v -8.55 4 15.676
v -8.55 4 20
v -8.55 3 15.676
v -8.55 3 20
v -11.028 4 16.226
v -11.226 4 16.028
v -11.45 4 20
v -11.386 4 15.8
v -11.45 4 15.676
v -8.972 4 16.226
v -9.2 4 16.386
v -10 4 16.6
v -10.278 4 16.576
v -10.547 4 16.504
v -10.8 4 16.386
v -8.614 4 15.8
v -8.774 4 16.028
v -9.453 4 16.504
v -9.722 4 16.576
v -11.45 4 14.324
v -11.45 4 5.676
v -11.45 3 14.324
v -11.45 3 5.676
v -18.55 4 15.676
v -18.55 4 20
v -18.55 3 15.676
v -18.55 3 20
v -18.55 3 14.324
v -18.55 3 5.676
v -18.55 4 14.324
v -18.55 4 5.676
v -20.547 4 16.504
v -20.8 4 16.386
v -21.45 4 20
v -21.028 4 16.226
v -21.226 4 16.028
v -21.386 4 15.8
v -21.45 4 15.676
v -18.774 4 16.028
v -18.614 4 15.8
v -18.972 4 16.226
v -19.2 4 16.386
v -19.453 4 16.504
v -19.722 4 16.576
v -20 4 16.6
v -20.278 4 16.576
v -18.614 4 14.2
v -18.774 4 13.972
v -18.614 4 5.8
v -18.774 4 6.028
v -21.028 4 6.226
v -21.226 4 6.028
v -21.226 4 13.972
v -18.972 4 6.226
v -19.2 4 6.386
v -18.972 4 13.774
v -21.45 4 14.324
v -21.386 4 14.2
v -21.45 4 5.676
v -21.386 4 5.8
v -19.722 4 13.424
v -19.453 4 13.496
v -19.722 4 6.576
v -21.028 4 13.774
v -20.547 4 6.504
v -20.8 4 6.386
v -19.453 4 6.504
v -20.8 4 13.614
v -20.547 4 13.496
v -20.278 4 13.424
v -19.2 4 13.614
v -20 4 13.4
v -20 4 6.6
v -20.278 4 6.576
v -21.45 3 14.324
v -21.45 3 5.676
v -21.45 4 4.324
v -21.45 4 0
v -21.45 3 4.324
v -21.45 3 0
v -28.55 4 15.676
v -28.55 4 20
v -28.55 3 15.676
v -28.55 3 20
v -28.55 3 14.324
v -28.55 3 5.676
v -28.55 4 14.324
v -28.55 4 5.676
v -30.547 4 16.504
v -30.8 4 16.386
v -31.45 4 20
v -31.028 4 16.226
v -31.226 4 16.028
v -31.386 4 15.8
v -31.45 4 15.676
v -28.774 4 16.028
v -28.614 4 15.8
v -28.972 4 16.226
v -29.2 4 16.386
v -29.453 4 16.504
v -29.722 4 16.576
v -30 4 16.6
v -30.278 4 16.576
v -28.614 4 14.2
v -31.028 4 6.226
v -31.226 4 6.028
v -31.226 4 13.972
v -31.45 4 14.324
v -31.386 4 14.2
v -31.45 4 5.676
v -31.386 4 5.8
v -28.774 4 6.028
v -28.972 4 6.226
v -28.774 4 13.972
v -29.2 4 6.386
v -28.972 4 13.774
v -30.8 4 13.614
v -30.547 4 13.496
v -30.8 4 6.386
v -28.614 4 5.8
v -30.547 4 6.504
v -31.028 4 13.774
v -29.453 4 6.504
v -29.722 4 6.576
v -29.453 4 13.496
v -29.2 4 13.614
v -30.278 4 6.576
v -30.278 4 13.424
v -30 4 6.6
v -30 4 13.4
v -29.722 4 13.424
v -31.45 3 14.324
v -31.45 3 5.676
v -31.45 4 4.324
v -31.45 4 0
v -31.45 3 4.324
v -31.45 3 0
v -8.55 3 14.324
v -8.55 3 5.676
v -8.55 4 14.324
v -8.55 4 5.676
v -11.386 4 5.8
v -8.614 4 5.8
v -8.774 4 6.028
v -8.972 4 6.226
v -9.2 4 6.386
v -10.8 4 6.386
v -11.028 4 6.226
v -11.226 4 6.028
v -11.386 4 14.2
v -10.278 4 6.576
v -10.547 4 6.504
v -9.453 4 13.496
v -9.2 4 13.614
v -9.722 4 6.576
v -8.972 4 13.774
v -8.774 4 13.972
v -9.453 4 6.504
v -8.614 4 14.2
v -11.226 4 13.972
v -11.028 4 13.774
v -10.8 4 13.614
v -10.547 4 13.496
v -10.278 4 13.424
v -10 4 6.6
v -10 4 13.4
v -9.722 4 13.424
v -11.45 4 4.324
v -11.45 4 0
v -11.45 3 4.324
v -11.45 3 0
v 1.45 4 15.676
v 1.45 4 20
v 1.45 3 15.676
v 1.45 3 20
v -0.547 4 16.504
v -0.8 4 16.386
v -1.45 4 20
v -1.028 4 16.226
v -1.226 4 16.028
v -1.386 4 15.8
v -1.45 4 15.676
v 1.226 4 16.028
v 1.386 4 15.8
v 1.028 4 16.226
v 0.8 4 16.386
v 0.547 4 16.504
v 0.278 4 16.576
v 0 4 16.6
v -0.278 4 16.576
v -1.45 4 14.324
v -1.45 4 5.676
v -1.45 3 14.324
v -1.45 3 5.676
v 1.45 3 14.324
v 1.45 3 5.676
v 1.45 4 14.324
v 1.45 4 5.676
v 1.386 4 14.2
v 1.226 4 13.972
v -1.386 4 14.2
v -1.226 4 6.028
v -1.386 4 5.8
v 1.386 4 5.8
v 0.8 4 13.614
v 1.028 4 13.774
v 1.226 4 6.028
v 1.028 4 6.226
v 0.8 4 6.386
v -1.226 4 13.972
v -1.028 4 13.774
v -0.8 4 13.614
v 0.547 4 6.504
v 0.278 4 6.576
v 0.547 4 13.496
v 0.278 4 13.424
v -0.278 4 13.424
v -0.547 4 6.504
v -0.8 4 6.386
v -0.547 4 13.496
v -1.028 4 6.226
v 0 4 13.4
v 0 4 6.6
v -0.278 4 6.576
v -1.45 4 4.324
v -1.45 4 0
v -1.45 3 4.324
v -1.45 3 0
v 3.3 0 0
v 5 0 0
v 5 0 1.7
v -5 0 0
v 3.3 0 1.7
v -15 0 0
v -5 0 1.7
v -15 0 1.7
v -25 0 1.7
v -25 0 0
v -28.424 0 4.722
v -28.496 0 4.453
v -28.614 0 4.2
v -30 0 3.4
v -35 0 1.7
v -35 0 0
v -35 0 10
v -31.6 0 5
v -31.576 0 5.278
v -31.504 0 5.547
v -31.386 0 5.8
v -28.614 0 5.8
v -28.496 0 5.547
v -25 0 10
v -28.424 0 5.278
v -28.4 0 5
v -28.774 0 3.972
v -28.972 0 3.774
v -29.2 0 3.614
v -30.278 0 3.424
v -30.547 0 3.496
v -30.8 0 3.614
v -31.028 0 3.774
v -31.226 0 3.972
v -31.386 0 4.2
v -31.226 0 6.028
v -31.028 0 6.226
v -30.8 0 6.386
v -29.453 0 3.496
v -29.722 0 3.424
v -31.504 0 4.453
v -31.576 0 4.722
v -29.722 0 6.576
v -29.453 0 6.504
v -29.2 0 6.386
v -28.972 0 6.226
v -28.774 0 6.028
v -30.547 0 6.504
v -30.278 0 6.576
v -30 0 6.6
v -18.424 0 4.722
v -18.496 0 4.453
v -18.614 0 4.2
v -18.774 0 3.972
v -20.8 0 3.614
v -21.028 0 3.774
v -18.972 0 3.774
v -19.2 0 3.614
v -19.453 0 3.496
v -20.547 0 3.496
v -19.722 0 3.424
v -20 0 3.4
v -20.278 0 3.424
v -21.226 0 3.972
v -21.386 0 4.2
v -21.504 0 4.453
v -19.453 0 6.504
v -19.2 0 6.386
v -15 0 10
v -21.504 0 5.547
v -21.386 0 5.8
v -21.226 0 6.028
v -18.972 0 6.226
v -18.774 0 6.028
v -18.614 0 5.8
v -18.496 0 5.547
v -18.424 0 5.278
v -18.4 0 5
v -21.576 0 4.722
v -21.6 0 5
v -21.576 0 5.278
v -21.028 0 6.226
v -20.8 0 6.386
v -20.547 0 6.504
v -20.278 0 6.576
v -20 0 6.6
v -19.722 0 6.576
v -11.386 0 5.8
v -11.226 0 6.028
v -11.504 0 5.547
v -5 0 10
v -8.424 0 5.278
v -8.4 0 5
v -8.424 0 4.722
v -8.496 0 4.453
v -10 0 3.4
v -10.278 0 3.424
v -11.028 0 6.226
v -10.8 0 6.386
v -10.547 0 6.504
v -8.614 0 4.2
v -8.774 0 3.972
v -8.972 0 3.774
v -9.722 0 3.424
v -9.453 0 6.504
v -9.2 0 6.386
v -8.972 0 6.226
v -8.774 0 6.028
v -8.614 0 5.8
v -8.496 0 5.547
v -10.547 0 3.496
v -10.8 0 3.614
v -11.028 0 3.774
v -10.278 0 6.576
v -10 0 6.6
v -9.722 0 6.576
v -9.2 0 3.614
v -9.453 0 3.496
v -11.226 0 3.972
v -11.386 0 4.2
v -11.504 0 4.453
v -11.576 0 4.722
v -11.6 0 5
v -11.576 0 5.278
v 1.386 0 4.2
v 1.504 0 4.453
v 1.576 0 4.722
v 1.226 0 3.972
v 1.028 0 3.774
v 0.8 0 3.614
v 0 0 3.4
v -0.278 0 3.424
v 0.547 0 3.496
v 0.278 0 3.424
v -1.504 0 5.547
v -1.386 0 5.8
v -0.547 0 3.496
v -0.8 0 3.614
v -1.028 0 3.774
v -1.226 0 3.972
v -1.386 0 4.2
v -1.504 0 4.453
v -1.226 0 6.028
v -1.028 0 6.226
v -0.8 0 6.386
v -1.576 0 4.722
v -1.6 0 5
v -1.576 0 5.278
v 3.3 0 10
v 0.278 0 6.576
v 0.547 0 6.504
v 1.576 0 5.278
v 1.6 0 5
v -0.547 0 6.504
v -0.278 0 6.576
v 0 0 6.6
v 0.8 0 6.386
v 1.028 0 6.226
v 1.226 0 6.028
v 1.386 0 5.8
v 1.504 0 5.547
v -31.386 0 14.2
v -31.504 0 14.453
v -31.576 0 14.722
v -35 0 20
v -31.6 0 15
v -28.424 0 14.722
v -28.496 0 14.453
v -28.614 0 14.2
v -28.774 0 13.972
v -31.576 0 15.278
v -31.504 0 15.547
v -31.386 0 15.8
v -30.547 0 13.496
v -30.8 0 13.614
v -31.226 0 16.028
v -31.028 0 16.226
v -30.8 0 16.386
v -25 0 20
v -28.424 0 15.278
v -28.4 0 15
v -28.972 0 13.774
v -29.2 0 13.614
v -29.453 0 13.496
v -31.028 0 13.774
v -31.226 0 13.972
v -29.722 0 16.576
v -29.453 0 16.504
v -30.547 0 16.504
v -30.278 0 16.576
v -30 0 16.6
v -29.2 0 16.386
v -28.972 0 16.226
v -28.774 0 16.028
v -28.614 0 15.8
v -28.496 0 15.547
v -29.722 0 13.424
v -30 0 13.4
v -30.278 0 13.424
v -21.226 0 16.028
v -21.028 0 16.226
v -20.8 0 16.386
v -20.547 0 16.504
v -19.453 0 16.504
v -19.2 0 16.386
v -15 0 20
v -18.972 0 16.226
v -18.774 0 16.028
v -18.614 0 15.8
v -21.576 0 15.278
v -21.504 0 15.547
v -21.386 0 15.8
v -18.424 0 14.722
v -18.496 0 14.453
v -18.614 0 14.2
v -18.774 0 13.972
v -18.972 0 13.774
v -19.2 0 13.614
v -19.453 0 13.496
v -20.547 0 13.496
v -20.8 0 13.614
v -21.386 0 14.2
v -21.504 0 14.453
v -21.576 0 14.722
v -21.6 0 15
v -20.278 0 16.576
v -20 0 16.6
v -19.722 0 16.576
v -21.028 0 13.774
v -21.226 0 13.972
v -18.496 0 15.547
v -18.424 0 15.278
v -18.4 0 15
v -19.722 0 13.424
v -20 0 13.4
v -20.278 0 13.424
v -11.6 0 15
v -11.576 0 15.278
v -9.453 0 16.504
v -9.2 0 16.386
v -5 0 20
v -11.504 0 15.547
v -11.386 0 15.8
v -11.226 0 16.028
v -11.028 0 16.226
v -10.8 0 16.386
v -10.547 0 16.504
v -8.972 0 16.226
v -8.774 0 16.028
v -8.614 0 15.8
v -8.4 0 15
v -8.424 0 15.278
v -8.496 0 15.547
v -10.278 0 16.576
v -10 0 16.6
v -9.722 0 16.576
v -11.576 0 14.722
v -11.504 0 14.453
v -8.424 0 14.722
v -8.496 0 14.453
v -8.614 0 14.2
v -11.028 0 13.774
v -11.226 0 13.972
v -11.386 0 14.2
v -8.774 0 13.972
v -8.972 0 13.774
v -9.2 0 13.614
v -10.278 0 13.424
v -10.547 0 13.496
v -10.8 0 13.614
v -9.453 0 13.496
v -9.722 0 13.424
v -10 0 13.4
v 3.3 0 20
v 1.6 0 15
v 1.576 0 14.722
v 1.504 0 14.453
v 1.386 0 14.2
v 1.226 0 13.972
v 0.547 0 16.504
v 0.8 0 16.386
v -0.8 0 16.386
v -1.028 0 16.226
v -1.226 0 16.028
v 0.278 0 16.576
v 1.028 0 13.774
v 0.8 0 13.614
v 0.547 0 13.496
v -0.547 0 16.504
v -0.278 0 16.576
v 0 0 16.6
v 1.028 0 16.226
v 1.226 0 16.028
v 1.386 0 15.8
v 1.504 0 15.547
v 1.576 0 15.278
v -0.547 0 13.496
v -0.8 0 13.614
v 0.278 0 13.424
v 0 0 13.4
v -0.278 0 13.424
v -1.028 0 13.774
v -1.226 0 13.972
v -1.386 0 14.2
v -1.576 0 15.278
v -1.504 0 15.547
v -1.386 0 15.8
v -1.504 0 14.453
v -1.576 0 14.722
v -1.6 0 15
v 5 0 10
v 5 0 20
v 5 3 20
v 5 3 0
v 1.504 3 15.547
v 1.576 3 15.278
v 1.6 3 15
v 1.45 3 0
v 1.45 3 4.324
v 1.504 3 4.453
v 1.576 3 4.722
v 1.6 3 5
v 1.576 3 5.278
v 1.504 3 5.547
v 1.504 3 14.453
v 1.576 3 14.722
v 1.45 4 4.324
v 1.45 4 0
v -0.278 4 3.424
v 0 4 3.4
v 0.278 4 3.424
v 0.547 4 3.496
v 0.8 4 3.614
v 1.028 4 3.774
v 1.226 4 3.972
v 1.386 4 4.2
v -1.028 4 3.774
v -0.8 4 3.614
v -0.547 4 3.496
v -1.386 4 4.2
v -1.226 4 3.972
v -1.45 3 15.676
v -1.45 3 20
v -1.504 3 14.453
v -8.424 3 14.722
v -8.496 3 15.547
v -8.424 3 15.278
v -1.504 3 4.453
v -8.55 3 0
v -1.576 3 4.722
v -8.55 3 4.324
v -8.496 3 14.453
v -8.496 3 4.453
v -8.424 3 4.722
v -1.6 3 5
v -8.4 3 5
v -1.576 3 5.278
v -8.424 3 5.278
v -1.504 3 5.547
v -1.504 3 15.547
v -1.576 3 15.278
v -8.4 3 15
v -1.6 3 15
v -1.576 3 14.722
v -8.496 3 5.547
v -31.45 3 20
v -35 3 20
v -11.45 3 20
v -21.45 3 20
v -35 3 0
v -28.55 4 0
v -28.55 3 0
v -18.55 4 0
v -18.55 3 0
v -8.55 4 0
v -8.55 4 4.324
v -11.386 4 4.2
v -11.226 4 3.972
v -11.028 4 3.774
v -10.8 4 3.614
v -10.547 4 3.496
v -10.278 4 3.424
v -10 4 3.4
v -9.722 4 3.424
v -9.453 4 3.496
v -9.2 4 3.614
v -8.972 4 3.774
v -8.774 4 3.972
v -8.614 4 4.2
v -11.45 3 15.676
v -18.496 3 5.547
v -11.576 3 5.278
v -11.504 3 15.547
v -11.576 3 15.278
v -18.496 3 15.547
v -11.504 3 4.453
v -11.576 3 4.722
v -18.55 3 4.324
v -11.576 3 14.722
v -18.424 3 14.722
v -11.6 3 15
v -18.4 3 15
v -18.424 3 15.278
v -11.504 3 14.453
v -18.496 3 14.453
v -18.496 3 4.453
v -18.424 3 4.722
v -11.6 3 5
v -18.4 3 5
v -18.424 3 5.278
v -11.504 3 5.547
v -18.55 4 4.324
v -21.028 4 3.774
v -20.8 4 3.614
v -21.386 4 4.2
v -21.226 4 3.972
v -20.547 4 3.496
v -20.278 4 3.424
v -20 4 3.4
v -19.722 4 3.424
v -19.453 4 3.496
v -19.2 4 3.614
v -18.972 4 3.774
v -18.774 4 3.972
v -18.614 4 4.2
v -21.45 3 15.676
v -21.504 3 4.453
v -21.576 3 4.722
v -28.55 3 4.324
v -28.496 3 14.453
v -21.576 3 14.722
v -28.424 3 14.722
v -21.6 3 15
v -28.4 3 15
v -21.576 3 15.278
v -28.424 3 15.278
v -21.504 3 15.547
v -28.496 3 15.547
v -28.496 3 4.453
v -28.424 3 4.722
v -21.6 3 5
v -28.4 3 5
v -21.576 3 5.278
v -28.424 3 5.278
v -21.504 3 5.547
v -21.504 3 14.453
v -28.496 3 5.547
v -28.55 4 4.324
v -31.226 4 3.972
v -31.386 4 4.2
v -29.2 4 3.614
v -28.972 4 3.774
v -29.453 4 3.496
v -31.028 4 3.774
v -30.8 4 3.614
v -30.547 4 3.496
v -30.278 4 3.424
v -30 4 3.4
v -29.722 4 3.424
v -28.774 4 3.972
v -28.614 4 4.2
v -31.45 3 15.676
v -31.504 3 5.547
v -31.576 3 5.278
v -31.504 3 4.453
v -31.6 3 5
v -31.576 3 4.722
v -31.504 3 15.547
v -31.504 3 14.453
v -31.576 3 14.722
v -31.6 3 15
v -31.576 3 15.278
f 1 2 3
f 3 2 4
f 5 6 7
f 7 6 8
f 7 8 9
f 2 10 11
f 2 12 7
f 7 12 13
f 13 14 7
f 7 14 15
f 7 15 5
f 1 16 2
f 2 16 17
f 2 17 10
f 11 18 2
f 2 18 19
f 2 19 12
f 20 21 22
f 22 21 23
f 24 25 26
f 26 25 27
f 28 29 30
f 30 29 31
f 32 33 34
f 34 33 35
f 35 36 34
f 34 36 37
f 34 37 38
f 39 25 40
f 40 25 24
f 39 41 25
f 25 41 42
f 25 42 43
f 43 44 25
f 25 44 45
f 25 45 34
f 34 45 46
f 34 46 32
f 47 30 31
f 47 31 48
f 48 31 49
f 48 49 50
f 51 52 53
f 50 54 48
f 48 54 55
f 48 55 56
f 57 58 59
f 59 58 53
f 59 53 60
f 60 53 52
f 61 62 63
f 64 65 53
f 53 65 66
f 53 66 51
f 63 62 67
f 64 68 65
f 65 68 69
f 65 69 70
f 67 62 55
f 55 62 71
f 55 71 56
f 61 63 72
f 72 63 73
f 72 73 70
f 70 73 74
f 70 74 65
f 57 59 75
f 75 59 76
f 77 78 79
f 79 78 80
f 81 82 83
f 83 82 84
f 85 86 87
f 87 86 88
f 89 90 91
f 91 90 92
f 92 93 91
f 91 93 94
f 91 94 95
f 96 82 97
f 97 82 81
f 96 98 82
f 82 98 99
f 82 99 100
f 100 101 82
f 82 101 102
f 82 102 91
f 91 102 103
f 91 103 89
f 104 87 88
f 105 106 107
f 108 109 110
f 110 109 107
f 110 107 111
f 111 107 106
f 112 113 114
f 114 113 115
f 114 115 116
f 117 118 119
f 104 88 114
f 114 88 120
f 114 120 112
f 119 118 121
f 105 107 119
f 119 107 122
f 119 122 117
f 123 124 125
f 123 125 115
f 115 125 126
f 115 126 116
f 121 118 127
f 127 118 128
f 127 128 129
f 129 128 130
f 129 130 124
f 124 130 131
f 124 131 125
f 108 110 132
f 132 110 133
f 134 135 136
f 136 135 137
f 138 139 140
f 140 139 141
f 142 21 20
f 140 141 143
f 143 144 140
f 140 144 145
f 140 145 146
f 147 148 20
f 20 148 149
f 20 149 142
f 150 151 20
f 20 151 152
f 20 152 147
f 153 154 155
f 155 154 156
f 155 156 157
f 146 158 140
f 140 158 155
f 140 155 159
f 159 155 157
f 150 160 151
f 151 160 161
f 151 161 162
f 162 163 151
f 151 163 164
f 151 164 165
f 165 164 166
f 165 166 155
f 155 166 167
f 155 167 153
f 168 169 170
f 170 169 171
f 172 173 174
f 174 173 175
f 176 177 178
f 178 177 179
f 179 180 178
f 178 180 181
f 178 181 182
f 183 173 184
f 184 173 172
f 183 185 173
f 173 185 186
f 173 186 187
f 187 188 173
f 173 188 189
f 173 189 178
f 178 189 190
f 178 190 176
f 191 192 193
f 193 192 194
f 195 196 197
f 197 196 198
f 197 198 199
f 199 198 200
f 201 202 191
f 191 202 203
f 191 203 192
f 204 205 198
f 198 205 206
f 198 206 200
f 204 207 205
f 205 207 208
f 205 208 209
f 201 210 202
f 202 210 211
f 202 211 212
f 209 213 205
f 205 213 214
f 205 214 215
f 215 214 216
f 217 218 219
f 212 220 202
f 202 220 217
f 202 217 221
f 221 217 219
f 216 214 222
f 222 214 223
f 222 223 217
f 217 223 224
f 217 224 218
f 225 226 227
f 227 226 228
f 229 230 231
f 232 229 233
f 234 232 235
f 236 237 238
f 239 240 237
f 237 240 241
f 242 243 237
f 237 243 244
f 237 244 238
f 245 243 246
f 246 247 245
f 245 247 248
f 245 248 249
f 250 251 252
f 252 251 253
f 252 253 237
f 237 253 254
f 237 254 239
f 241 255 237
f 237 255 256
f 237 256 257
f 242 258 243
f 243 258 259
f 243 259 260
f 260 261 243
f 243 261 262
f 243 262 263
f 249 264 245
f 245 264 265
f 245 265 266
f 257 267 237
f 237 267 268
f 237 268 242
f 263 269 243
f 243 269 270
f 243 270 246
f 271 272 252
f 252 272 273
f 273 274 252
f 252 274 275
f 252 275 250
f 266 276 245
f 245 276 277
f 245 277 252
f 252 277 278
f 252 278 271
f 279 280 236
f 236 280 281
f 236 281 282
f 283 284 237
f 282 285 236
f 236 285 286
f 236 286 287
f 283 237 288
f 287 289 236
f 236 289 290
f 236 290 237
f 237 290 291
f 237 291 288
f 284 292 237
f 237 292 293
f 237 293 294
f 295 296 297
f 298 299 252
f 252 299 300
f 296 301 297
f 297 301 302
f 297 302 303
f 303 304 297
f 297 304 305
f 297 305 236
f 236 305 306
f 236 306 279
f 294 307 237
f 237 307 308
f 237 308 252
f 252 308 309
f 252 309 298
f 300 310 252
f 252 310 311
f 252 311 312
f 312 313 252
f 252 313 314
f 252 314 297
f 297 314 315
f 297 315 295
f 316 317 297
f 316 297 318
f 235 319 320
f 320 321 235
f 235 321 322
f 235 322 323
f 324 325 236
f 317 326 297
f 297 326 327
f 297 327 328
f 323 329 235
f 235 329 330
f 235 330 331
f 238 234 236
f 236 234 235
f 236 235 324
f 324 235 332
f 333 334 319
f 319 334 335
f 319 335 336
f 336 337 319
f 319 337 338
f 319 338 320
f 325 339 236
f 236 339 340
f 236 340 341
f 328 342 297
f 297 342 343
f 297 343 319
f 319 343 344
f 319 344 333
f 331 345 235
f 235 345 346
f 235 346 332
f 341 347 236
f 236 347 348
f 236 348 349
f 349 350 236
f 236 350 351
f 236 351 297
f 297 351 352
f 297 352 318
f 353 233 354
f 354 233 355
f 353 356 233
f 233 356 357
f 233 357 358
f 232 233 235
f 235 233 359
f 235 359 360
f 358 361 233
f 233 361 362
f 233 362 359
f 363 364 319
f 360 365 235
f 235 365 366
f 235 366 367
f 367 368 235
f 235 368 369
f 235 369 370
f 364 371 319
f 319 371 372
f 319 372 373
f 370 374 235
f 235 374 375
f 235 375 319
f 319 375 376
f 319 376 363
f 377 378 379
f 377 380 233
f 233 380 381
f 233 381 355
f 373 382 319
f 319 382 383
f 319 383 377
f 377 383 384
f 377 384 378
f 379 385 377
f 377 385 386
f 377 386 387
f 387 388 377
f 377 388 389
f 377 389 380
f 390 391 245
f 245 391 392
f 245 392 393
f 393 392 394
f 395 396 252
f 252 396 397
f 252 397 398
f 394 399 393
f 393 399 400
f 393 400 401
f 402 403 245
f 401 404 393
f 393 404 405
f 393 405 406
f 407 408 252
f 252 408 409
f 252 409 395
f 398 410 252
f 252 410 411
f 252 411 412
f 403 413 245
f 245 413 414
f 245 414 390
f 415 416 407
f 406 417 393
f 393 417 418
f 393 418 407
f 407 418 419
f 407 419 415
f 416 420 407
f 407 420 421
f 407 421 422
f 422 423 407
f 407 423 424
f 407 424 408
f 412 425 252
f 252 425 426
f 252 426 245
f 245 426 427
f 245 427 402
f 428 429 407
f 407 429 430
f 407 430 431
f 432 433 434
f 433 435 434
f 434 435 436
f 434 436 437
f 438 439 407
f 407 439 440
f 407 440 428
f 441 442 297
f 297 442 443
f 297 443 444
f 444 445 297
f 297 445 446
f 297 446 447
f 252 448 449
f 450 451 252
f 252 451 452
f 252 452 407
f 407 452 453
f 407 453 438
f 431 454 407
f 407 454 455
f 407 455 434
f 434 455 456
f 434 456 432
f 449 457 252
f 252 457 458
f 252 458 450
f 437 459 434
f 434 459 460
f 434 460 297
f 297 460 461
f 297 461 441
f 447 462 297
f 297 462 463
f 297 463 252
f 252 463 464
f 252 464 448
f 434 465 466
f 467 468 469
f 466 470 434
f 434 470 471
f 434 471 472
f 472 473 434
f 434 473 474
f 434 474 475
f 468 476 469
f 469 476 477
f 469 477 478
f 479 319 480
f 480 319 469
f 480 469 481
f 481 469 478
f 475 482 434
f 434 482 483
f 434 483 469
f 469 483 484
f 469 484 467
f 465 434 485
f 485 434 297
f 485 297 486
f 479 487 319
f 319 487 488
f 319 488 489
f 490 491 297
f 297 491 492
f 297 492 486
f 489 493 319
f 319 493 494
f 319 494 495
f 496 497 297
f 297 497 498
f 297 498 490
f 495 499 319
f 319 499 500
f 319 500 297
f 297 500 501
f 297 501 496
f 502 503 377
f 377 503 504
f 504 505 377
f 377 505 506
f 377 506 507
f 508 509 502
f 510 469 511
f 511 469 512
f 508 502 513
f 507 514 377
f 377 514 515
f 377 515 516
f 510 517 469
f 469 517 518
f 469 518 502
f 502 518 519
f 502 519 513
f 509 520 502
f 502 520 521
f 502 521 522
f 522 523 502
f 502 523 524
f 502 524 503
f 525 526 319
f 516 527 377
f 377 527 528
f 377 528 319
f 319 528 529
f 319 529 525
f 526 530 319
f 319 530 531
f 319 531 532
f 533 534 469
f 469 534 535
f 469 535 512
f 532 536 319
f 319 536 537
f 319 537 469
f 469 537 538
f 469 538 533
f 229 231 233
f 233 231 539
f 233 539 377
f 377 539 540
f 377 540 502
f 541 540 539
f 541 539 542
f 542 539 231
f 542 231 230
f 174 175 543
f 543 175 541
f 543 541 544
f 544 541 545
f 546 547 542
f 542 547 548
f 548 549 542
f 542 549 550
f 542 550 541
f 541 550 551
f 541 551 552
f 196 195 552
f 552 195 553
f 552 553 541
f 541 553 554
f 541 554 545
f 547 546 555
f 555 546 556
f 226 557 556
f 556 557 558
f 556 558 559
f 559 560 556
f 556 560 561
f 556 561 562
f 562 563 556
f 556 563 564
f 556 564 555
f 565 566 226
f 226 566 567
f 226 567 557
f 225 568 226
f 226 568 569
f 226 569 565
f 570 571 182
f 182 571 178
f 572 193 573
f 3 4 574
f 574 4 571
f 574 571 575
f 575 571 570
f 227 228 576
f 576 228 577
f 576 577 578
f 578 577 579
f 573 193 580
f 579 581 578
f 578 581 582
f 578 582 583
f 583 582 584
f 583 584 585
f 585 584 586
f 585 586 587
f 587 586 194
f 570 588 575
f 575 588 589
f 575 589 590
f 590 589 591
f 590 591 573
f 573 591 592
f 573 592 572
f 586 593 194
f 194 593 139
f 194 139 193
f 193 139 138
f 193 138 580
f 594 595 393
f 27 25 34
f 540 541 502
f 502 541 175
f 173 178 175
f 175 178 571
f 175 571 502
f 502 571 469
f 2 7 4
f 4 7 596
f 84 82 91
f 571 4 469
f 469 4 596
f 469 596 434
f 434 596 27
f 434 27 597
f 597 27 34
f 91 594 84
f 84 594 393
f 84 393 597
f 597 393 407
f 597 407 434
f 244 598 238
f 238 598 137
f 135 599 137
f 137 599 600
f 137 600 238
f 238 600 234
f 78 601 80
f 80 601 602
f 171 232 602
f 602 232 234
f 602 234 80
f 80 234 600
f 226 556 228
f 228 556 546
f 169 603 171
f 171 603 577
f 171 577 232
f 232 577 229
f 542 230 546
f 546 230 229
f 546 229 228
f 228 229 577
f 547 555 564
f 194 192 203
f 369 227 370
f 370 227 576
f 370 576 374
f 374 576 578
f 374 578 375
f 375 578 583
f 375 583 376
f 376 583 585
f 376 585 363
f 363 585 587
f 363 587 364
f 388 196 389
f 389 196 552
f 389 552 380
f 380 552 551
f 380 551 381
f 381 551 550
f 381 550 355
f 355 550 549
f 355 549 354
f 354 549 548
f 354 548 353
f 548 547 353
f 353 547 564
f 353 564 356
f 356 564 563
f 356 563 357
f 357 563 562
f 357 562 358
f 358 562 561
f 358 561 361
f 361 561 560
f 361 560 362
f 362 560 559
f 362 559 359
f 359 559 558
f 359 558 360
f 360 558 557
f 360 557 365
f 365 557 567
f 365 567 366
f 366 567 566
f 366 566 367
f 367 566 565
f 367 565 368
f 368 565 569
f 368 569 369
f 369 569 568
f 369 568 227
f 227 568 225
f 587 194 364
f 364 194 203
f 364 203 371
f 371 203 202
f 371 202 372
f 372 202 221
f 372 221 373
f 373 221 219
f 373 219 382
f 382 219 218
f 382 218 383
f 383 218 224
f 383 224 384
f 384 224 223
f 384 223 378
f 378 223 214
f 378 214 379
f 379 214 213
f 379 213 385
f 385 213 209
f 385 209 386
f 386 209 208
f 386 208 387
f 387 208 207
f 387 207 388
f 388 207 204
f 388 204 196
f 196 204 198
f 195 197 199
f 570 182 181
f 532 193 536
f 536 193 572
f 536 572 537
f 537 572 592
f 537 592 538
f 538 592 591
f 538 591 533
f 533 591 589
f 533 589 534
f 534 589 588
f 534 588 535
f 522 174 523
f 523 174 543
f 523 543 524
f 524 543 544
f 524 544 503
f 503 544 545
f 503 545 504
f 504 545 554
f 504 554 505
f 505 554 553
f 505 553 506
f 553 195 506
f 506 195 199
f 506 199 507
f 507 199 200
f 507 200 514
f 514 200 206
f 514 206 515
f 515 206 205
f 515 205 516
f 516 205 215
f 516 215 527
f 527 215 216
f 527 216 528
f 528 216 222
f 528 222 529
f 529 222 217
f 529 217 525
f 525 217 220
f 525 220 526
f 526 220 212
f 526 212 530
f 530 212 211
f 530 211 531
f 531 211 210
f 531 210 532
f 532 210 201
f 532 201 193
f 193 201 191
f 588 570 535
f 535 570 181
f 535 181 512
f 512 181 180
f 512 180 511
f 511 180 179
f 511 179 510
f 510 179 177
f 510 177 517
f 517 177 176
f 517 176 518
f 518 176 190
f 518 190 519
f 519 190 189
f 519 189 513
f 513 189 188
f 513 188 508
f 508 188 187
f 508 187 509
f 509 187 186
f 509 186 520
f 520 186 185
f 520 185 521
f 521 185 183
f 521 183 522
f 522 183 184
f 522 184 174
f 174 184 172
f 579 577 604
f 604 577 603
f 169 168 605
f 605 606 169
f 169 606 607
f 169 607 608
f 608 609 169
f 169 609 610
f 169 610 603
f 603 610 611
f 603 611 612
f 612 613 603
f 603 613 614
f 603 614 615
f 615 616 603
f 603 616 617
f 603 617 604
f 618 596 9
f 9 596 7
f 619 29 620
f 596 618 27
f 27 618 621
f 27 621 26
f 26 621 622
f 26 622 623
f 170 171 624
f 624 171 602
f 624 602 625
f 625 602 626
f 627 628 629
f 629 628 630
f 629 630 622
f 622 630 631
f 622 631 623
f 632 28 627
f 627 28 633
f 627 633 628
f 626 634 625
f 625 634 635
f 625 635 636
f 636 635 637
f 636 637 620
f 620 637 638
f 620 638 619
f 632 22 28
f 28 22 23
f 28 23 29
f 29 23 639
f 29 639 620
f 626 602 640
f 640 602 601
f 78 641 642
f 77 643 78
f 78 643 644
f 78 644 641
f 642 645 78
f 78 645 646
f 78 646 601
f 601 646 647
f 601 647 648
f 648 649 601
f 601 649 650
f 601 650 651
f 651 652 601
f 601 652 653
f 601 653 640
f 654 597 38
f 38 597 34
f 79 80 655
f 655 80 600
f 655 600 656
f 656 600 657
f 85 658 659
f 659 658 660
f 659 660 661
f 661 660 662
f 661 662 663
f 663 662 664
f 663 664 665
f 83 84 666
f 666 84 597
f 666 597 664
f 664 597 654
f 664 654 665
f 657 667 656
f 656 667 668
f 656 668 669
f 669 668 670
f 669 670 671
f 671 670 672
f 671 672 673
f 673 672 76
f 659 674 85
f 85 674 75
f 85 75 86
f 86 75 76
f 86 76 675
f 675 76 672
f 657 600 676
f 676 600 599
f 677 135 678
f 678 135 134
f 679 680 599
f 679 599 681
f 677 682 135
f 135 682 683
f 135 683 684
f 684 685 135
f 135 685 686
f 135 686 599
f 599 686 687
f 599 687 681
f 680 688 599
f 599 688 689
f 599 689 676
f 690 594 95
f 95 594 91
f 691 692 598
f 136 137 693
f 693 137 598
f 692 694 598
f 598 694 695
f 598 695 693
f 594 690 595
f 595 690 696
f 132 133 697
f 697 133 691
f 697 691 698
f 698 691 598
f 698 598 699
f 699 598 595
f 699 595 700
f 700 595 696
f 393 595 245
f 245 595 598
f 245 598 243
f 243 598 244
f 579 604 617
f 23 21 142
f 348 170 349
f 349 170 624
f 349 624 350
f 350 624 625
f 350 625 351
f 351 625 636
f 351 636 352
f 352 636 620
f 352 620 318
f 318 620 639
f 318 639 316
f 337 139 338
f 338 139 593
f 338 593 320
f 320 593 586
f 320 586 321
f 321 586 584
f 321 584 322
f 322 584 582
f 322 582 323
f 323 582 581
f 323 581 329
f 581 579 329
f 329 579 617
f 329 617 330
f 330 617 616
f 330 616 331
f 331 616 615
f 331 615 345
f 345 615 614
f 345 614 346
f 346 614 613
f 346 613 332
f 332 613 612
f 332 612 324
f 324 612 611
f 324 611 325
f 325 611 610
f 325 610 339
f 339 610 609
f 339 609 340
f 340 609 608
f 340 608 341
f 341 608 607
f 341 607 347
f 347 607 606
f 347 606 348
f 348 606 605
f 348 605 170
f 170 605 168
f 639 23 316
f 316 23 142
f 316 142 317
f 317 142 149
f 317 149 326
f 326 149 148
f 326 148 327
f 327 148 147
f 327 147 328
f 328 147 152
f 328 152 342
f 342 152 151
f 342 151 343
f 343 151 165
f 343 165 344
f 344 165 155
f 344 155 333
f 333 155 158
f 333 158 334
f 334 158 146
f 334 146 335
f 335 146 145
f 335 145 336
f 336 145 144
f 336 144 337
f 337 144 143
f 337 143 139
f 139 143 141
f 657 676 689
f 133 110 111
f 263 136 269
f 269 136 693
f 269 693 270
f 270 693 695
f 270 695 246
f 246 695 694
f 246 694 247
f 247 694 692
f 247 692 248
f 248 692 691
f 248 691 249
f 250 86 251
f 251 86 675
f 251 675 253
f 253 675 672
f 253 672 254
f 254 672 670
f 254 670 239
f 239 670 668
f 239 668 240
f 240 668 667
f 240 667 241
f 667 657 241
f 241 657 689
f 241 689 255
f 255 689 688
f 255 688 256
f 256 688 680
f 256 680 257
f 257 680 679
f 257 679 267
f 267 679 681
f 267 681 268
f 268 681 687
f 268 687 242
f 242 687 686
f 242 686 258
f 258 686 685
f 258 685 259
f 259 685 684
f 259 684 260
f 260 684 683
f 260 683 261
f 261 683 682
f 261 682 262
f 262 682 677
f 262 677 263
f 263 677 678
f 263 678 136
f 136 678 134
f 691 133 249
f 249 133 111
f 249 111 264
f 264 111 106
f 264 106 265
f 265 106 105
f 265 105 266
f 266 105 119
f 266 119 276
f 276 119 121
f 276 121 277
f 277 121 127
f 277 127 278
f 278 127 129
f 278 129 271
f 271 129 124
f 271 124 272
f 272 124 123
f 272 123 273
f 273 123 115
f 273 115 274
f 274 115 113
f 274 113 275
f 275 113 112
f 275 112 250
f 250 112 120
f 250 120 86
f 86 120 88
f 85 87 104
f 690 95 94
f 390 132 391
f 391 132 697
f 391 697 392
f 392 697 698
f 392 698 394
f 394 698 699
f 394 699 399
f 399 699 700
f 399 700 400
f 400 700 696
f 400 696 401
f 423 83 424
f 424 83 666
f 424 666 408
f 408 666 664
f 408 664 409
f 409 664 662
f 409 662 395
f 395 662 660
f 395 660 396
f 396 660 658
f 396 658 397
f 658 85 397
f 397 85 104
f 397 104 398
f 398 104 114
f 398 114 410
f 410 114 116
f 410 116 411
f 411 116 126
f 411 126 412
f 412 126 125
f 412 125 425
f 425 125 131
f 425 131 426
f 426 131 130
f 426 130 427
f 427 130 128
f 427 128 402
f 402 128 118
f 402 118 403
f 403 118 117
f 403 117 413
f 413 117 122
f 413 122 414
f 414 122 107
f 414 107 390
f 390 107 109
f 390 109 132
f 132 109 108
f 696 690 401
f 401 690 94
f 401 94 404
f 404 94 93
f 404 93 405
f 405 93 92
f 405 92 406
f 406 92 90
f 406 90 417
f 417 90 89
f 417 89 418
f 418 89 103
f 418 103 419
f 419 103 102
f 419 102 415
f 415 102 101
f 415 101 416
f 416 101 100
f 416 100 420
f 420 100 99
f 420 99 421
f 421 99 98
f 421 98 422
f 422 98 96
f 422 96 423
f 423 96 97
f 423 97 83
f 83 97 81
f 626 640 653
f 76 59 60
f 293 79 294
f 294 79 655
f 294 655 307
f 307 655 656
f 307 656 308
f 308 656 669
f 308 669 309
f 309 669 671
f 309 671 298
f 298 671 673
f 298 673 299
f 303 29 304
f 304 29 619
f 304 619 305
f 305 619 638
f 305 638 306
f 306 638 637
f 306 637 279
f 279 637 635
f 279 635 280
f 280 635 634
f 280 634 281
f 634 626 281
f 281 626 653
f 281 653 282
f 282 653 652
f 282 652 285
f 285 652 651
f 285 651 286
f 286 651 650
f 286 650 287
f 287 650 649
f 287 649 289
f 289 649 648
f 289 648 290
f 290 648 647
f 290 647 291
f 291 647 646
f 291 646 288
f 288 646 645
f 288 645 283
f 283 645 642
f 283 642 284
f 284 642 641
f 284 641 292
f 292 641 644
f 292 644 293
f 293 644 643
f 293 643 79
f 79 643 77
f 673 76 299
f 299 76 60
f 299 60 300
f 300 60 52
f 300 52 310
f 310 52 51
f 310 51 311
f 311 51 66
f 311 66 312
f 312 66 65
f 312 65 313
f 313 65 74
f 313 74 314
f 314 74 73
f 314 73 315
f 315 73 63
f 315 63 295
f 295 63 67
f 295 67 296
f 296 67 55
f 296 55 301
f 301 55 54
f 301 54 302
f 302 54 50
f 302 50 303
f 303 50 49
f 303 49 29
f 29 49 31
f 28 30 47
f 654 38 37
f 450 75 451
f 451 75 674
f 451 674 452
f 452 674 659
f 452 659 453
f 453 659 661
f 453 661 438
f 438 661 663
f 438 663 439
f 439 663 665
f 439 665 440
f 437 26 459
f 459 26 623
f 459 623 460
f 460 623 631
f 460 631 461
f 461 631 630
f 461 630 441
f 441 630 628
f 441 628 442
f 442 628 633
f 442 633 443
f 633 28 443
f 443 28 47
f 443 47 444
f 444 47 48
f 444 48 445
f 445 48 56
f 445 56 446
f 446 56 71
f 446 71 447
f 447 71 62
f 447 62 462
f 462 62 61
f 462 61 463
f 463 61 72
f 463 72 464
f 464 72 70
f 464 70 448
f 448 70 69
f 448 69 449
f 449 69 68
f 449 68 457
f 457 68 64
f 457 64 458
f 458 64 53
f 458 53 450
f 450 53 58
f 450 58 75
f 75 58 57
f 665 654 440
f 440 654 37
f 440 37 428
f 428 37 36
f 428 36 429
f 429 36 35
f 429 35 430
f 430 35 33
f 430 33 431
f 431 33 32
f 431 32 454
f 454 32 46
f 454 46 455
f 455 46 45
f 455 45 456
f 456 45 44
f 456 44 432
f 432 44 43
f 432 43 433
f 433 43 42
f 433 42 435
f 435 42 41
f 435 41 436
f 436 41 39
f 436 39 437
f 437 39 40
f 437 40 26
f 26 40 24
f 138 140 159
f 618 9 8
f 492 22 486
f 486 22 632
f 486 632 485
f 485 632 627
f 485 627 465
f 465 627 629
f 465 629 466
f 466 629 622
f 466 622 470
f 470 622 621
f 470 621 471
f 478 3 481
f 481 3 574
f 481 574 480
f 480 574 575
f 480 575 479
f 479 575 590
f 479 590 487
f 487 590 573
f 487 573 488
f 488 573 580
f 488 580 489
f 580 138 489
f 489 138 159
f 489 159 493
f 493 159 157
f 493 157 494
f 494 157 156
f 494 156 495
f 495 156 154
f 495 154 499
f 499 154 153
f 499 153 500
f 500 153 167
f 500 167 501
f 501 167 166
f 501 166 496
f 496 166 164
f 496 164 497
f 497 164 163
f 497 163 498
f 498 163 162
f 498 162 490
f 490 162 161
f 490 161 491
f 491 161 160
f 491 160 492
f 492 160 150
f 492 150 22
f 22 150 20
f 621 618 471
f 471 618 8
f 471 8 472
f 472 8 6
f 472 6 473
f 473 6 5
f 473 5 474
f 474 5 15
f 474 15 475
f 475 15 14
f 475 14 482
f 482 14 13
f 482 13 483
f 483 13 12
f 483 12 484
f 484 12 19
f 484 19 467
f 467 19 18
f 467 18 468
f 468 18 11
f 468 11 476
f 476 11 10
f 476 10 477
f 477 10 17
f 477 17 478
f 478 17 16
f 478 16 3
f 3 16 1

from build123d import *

# Parameters (mm, degrees)
MAIN_DEPTH                 = 20
ESQUISSE2_R                = 1.6
TOPHOLE_DEPTH              = 5
R_P_TITION_LIN_AIRE1_COUNT = 4
R_P_TITION_LIN_AIRE1_PITCH = 10


with BuildPart() as part:
    # Esquisse1 → Main (new body)
    with BuildSketch(Plane.XY):
        Polygon((-5, 0), (-5, 3), (-1.45, 3), (-1.45, 4), (1.45, 4), (1.45, 3), (5, 3), (5, 0), align=None)
    main = extrude(amount=MAIN_DEPTH)

    # Esquisse2 → TopHole (cut, through all)
    with BuildSketch(Plane(origin=(0, 4, 0), x_dir=(1, 0, 0), z_dir=(0, 1, 0))):
        with Locations((0, -5)):
            Circle(ESQUISSE2_R)
        with Locations((0, -15)):
            Circle(ESQUISSE2_R)
    tophole = extrude(amount=-TOPHOLE_DEPTH, mode=Mode.SUBTRACT)

    # Répétition linéaire1: Main, TopHole ×4
    with Locations(*[(-i * R_P_TITION_LIN_AIRE1_PITCH, 0, 0) for i in range(1, R_P_TITION_LIN_AIRE1_COUNT)]):
        add(main)
        add(tophole, mode=Mode.SUBTRACT)


solid = part.part
